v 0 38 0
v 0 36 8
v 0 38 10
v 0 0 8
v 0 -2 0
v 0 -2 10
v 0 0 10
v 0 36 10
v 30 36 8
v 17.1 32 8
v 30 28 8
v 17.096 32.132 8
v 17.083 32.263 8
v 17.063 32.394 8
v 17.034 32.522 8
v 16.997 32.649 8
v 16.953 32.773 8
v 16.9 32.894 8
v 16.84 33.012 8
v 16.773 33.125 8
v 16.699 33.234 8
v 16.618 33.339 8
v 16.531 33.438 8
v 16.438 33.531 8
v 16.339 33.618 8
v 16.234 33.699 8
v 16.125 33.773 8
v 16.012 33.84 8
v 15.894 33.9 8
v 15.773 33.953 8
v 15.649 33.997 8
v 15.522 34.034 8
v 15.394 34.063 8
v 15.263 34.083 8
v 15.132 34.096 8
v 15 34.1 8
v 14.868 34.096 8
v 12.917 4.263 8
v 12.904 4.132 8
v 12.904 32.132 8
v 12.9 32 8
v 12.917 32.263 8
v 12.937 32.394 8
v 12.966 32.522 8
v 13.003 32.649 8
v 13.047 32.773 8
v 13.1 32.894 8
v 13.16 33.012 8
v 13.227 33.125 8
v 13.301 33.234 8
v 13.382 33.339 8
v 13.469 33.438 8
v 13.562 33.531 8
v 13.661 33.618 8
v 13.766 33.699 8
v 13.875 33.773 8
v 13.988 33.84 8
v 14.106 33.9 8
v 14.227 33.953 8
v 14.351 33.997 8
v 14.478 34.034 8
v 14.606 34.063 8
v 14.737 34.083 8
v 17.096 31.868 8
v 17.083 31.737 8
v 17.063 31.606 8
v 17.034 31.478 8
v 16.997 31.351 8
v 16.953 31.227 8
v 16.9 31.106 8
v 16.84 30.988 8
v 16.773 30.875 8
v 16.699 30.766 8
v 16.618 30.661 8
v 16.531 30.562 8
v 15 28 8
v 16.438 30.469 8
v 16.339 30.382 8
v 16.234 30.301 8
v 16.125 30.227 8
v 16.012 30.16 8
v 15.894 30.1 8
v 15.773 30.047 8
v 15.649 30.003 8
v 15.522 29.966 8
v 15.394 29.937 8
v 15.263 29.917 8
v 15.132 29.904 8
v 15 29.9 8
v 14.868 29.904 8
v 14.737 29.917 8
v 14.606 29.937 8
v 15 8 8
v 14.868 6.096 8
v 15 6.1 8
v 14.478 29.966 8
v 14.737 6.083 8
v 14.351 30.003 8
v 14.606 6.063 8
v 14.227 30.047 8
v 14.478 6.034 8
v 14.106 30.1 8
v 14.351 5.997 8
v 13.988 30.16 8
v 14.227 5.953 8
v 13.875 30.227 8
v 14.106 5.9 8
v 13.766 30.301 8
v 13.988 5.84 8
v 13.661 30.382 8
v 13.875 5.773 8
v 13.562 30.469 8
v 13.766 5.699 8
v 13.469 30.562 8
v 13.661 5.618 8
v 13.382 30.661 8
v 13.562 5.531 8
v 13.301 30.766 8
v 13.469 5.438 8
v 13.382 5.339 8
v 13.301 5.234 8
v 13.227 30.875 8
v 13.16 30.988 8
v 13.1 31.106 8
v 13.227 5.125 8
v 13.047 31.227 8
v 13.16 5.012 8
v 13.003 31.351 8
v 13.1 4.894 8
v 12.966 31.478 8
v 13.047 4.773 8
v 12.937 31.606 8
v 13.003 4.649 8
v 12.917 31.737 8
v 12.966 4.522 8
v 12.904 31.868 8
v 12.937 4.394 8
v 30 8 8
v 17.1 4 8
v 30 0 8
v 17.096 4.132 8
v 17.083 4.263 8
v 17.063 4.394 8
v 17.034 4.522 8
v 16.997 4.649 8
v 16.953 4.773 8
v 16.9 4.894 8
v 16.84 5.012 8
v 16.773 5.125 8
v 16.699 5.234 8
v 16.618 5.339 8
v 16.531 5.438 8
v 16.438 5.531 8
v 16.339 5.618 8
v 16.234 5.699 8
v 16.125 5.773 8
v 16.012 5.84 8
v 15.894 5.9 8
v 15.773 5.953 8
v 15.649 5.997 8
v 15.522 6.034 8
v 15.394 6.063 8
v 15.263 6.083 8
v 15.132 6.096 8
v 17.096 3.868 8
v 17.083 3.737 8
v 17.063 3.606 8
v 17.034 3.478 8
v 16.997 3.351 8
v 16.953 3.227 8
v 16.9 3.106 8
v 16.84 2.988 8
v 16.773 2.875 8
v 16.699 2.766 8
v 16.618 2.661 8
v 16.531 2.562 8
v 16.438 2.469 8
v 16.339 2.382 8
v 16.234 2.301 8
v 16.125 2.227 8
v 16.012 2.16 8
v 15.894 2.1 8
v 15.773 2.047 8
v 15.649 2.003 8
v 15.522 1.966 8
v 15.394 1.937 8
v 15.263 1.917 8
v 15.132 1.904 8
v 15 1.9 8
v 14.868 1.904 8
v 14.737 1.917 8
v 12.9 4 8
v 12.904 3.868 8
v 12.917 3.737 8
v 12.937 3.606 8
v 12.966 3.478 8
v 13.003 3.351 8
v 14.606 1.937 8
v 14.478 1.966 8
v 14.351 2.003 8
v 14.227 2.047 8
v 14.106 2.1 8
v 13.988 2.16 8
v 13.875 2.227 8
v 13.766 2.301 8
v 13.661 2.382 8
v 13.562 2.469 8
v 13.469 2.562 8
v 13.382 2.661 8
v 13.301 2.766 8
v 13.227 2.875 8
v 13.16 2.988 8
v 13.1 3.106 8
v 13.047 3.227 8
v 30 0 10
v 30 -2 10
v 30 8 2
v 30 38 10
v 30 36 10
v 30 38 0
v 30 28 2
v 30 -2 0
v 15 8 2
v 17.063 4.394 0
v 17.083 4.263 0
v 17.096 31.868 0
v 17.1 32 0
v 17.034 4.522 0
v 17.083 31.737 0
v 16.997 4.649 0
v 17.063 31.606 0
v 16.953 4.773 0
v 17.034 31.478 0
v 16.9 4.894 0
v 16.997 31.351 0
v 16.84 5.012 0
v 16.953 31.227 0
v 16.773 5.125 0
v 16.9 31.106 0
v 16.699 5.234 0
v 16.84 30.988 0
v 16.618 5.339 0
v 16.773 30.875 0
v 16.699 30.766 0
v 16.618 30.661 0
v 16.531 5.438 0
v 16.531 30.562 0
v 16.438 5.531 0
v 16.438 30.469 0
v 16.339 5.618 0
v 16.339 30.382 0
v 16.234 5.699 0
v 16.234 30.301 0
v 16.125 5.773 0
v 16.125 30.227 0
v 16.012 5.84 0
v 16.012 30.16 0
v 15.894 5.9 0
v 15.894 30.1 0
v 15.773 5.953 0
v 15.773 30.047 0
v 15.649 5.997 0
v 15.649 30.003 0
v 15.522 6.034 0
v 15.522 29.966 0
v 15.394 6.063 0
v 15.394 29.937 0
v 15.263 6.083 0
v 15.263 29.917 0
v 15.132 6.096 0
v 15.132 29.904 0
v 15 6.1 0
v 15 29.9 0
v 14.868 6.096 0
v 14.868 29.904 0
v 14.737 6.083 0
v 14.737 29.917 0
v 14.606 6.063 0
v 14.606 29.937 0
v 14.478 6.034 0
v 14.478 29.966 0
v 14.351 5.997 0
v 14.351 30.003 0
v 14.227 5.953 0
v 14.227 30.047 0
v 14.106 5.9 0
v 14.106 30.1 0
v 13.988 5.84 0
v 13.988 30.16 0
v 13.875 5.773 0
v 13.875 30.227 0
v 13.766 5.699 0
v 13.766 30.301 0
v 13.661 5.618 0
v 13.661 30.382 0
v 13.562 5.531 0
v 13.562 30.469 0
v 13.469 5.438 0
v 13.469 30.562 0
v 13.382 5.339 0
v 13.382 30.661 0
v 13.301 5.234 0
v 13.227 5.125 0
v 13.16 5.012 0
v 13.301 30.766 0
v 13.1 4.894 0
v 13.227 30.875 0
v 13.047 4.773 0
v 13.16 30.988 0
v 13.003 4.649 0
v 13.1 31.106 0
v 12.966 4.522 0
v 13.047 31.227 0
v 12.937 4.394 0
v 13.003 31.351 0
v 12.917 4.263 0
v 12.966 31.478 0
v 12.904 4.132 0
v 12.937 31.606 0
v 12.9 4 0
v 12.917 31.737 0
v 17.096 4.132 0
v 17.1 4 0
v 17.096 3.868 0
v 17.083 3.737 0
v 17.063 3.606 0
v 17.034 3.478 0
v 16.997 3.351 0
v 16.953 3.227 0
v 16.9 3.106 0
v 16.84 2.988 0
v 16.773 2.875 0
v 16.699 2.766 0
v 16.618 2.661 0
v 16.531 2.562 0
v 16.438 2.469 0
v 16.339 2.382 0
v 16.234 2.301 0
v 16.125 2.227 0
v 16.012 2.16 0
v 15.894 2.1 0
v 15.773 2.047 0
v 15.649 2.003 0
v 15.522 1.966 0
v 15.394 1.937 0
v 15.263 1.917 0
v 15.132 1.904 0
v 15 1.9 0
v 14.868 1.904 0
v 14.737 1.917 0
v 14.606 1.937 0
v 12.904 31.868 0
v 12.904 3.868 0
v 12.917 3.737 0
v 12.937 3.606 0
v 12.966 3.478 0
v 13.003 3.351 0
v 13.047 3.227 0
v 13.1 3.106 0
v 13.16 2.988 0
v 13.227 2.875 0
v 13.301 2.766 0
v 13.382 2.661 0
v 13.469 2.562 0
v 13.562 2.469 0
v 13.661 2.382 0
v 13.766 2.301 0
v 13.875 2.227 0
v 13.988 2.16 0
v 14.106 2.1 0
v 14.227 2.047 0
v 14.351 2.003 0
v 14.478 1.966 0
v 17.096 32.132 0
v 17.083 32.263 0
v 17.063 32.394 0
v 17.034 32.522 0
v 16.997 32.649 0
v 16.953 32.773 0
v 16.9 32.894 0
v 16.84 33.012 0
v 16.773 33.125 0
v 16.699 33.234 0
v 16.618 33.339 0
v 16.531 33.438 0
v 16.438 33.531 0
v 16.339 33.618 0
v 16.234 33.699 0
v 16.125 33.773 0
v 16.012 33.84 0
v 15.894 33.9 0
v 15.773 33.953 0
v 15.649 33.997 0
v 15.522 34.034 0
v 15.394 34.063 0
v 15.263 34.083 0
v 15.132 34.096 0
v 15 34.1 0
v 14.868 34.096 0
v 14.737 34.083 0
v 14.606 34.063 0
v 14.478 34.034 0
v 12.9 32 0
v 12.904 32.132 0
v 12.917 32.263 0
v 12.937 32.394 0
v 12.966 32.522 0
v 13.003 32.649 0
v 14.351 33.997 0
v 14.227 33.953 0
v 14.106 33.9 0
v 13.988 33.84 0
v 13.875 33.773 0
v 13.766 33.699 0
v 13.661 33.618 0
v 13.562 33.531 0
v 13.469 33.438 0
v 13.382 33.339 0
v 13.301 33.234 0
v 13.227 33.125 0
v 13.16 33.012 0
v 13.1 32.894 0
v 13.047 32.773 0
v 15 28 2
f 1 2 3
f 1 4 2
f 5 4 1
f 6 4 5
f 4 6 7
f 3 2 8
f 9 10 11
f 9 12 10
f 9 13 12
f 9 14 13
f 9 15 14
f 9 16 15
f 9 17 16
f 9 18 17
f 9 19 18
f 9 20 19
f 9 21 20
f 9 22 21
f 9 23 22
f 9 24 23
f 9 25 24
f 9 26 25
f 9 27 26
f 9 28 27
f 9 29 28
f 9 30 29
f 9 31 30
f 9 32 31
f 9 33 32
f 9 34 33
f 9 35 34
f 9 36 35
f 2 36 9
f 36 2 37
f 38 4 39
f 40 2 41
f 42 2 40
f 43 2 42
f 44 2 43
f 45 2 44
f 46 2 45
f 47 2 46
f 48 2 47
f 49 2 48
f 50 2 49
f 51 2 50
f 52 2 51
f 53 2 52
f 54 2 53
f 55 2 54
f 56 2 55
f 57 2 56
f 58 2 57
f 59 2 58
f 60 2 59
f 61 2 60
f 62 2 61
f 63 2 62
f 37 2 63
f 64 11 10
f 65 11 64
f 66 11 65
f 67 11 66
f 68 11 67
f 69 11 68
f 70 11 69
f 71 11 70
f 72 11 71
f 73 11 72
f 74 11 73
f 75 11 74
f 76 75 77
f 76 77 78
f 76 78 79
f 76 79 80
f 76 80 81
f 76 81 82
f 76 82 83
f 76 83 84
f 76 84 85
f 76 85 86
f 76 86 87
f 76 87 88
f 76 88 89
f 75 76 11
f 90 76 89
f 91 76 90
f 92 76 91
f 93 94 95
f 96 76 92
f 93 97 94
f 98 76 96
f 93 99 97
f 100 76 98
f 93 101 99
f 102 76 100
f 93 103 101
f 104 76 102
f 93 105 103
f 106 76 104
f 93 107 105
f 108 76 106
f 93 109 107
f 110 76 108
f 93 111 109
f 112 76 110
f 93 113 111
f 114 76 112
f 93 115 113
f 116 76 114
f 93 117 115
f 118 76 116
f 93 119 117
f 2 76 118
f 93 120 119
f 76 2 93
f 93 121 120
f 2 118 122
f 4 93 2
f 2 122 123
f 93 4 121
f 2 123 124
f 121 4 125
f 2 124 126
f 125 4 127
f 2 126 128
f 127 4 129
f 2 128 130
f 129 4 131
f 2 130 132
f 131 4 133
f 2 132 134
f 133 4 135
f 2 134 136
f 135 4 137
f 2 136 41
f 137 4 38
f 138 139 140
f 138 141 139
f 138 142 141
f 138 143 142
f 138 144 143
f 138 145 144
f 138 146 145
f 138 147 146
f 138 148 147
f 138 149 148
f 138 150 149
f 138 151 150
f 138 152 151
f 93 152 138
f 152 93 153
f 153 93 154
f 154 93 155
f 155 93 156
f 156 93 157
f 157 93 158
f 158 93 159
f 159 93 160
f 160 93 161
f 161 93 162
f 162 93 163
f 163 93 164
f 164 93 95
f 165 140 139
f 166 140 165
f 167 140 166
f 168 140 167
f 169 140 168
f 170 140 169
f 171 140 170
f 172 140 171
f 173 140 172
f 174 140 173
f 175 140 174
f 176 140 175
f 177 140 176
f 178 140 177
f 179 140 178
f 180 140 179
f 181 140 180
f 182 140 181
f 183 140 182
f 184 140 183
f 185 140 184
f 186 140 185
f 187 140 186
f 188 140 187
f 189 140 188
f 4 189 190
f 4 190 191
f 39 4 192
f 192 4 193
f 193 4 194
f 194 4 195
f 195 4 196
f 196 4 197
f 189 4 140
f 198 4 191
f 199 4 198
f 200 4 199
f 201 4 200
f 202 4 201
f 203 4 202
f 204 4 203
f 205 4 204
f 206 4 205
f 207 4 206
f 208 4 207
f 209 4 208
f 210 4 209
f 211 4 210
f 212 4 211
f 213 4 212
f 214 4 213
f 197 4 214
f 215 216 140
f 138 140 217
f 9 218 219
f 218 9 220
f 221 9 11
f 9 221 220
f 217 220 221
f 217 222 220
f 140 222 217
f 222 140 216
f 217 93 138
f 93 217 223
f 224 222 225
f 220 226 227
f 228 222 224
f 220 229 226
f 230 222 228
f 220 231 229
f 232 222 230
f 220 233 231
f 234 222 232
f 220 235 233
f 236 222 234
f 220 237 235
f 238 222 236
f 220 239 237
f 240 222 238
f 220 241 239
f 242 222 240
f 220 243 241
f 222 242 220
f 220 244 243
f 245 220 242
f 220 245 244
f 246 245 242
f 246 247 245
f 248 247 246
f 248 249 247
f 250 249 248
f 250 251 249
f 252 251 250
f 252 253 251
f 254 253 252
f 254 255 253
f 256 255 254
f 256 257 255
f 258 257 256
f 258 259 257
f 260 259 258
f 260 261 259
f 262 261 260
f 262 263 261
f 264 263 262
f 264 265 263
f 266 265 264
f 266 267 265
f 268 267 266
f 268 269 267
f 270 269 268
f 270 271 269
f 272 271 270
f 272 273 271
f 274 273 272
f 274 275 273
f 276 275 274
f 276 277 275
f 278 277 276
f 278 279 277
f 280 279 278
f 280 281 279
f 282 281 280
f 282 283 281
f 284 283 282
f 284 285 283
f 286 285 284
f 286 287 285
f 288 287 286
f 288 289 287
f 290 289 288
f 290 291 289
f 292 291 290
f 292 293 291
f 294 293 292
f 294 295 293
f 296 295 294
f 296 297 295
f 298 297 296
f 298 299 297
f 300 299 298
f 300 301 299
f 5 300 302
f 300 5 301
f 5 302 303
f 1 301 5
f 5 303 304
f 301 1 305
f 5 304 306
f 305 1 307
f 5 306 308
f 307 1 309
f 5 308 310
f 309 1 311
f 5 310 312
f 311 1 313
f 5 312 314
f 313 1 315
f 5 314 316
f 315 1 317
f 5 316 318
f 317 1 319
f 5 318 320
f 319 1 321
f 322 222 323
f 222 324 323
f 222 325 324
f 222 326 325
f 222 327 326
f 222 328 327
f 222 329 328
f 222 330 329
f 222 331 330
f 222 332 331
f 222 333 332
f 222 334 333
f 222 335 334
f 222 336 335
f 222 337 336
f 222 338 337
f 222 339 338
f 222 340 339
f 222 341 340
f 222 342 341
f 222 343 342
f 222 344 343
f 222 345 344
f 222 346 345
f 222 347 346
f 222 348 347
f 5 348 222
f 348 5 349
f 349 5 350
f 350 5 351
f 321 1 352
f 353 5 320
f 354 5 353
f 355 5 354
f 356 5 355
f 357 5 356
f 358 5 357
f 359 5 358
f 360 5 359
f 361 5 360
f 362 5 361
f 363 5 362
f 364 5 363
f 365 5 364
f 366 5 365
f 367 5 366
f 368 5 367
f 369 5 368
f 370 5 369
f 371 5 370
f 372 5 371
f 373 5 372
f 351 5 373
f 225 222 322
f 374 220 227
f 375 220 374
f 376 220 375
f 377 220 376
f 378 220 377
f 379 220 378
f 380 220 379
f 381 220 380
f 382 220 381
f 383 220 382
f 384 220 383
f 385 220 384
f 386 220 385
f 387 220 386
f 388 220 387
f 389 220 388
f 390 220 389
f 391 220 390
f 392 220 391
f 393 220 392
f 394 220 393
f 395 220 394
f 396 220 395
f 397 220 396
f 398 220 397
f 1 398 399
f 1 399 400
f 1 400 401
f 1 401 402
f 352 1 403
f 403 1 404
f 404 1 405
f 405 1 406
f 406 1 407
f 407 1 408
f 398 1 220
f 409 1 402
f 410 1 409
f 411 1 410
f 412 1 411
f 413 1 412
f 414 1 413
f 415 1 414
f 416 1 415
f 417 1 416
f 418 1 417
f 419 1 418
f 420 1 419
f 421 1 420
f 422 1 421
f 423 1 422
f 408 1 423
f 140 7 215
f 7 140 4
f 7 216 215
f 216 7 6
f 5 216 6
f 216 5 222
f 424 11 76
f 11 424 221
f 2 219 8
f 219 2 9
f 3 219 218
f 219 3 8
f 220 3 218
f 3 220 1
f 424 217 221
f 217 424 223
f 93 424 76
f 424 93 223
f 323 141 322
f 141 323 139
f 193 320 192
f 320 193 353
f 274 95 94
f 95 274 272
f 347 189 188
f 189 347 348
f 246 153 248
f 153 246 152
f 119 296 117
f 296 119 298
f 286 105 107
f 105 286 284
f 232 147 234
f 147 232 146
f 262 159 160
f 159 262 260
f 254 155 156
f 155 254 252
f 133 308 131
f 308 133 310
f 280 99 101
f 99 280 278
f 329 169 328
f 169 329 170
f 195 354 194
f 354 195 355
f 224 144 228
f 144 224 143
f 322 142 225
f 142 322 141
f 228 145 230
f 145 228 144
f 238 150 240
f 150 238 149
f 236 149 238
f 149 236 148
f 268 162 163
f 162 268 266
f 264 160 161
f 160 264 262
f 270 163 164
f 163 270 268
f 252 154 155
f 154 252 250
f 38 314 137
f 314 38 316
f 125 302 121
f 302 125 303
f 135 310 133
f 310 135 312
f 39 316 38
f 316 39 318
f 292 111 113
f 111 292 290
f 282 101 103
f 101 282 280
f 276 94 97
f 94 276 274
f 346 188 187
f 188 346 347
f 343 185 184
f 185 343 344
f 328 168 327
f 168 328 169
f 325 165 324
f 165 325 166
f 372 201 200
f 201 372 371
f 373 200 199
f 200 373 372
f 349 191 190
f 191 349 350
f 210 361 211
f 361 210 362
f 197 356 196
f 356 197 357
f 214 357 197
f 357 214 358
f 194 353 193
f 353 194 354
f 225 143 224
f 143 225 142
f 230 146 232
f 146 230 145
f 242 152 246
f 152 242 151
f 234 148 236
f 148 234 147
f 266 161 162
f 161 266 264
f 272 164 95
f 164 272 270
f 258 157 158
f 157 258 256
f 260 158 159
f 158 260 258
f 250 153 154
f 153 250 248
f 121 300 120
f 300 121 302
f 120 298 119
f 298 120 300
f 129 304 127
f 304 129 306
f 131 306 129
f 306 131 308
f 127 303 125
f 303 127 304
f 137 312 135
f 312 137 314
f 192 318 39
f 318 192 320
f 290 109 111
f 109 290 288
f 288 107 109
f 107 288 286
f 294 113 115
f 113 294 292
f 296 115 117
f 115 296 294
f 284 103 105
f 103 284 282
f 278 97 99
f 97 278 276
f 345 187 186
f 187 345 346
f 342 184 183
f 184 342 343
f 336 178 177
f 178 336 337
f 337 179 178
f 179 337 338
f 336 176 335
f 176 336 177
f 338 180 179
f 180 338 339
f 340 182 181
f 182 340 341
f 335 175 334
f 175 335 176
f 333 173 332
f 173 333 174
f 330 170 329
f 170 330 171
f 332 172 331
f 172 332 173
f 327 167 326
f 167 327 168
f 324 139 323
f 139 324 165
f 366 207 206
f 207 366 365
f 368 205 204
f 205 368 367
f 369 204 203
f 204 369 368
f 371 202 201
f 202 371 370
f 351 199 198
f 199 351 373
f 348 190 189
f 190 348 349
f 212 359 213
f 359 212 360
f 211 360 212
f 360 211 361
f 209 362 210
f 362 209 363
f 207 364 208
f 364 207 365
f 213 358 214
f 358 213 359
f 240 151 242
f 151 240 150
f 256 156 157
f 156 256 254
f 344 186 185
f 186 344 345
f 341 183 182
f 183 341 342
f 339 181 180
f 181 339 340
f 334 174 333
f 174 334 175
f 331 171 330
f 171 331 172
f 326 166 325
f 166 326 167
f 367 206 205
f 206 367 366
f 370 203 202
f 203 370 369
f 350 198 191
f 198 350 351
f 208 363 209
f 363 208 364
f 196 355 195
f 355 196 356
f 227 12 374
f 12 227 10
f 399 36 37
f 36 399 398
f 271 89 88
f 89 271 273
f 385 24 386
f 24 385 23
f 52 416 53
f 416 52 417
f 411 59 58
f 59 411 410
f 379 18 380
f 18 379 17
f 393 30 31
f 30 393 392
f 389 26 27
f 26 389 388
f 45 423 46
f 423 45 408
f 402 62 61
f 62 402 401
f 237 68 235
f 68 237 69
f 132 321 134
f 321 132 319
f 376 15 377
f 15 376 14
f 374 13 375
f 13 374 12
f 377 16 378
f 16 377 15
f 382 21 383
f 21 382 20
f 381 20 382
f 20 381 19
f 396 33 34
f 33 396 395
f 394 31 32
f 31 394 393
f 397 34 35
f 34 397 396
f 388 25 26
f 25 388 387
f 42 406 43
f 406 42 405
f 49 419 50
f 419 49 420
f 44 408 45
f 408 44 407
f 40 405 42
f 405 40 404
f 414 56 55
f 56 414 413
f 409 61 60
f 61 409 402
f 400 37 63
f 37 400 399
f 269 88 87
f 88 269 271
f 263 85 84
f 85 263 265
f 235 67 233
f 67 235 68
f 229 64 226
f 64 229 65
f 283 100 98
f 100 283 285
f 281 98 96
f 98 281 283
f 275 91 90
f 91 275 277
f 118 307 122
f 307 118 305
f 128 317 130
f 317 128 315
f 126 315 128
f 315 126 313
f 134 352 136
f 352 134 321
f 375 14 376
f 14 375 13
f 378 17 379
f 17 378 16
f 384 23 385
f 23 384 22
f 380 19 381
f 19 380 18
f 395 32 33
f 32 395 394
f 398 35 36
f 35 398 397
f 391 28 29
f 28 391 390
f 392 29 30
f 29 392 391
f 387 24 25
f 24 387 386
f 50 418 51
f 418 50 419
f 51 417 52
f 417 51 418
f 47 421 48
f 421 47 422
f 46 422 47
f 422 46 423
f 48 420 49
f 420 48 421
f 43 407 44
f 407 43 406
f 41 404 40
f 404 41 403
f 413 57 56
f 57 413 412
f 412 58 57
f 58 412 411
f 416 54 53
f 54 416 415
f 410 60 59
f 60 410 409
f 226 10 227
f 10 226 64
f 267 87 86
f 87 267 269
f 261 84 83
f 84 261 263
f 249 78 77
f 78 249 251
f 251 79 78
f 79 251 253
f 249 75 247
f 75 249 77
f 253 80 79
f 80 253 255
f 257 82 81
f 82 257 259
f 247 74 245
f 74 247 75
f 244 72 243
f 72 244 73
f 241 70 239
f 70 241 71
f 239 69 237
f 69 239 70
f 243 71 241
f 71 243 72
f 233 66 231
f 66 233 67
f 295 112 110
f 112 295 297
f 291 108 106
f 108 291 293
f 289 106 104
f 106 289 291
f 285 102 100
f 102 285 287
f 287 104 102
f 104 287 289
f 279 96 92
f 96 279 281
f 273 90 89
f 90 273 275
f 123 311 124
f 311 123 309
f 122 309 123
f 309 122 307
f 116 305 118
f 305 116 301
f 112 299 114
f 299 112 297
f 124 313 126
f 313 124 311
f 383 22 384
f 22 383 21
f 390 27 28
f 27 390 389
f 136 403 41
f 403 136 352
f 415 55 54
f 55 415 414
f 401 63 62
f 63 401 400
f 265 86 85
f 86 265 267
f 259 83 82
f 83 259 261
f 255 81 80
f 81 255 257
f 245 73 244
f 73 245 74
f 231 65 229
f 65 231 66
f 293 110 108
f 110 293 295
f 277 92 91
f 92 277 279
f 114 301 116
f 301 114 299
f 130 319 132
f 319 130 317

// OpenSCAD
terminal_grp_cnt = 1; //x2
terminal_grp_len = 2 * 8.5; //mm

terminal_grp_pos_x = 15; //mm
terminal_grp_pos_y = 18; //mm

terminal_bed_hight = 2; //mm

body_hight = 8; //mm
body_len = 30; //mm
body_width = 8; //mm
body_grp_width = 36 - terminal_grp_len; //mm
body_full_width = body_grp_width + terminal_grp_cnt * terminal_grp_len;

hole_dia = 4.2; //mm
hole_pos_x = 15; //mm
hole_pos_y = 4; //mm

border_hight = 2; //mm
border_width = 2; //mm

$fn = 100;

echo("full width = ", body_full_width);

module foot() {
    translate([0, 0, 0])
        cube([body_len, body_width, body_hight]);
    translate([0, -border_width, 0])
        cube([body_len, border_width, border_hight + body_hight]);
}

difference() {
    union() {
        translate([0, 0, 0])
            rotate(0)
                foot();
        translate([0, body_full_width, 0])
            mirror([0, 1, 0])
                foot();
        cube([body_len, body_full_width, terminal_bed_hight]);
        cube([hole_pos_x, body_full_width, body_hight]);
    }
    union() {
        translate([hole_pos_x, hole_pos_y, 0])
            cylinder(body_hight, r = hole_dia / 2);
        translate([hole_pos_x, body_full_width - hole_pos_y, 0])
            cylinder(body_hight, r = hole_dia / 2);
    }
}
